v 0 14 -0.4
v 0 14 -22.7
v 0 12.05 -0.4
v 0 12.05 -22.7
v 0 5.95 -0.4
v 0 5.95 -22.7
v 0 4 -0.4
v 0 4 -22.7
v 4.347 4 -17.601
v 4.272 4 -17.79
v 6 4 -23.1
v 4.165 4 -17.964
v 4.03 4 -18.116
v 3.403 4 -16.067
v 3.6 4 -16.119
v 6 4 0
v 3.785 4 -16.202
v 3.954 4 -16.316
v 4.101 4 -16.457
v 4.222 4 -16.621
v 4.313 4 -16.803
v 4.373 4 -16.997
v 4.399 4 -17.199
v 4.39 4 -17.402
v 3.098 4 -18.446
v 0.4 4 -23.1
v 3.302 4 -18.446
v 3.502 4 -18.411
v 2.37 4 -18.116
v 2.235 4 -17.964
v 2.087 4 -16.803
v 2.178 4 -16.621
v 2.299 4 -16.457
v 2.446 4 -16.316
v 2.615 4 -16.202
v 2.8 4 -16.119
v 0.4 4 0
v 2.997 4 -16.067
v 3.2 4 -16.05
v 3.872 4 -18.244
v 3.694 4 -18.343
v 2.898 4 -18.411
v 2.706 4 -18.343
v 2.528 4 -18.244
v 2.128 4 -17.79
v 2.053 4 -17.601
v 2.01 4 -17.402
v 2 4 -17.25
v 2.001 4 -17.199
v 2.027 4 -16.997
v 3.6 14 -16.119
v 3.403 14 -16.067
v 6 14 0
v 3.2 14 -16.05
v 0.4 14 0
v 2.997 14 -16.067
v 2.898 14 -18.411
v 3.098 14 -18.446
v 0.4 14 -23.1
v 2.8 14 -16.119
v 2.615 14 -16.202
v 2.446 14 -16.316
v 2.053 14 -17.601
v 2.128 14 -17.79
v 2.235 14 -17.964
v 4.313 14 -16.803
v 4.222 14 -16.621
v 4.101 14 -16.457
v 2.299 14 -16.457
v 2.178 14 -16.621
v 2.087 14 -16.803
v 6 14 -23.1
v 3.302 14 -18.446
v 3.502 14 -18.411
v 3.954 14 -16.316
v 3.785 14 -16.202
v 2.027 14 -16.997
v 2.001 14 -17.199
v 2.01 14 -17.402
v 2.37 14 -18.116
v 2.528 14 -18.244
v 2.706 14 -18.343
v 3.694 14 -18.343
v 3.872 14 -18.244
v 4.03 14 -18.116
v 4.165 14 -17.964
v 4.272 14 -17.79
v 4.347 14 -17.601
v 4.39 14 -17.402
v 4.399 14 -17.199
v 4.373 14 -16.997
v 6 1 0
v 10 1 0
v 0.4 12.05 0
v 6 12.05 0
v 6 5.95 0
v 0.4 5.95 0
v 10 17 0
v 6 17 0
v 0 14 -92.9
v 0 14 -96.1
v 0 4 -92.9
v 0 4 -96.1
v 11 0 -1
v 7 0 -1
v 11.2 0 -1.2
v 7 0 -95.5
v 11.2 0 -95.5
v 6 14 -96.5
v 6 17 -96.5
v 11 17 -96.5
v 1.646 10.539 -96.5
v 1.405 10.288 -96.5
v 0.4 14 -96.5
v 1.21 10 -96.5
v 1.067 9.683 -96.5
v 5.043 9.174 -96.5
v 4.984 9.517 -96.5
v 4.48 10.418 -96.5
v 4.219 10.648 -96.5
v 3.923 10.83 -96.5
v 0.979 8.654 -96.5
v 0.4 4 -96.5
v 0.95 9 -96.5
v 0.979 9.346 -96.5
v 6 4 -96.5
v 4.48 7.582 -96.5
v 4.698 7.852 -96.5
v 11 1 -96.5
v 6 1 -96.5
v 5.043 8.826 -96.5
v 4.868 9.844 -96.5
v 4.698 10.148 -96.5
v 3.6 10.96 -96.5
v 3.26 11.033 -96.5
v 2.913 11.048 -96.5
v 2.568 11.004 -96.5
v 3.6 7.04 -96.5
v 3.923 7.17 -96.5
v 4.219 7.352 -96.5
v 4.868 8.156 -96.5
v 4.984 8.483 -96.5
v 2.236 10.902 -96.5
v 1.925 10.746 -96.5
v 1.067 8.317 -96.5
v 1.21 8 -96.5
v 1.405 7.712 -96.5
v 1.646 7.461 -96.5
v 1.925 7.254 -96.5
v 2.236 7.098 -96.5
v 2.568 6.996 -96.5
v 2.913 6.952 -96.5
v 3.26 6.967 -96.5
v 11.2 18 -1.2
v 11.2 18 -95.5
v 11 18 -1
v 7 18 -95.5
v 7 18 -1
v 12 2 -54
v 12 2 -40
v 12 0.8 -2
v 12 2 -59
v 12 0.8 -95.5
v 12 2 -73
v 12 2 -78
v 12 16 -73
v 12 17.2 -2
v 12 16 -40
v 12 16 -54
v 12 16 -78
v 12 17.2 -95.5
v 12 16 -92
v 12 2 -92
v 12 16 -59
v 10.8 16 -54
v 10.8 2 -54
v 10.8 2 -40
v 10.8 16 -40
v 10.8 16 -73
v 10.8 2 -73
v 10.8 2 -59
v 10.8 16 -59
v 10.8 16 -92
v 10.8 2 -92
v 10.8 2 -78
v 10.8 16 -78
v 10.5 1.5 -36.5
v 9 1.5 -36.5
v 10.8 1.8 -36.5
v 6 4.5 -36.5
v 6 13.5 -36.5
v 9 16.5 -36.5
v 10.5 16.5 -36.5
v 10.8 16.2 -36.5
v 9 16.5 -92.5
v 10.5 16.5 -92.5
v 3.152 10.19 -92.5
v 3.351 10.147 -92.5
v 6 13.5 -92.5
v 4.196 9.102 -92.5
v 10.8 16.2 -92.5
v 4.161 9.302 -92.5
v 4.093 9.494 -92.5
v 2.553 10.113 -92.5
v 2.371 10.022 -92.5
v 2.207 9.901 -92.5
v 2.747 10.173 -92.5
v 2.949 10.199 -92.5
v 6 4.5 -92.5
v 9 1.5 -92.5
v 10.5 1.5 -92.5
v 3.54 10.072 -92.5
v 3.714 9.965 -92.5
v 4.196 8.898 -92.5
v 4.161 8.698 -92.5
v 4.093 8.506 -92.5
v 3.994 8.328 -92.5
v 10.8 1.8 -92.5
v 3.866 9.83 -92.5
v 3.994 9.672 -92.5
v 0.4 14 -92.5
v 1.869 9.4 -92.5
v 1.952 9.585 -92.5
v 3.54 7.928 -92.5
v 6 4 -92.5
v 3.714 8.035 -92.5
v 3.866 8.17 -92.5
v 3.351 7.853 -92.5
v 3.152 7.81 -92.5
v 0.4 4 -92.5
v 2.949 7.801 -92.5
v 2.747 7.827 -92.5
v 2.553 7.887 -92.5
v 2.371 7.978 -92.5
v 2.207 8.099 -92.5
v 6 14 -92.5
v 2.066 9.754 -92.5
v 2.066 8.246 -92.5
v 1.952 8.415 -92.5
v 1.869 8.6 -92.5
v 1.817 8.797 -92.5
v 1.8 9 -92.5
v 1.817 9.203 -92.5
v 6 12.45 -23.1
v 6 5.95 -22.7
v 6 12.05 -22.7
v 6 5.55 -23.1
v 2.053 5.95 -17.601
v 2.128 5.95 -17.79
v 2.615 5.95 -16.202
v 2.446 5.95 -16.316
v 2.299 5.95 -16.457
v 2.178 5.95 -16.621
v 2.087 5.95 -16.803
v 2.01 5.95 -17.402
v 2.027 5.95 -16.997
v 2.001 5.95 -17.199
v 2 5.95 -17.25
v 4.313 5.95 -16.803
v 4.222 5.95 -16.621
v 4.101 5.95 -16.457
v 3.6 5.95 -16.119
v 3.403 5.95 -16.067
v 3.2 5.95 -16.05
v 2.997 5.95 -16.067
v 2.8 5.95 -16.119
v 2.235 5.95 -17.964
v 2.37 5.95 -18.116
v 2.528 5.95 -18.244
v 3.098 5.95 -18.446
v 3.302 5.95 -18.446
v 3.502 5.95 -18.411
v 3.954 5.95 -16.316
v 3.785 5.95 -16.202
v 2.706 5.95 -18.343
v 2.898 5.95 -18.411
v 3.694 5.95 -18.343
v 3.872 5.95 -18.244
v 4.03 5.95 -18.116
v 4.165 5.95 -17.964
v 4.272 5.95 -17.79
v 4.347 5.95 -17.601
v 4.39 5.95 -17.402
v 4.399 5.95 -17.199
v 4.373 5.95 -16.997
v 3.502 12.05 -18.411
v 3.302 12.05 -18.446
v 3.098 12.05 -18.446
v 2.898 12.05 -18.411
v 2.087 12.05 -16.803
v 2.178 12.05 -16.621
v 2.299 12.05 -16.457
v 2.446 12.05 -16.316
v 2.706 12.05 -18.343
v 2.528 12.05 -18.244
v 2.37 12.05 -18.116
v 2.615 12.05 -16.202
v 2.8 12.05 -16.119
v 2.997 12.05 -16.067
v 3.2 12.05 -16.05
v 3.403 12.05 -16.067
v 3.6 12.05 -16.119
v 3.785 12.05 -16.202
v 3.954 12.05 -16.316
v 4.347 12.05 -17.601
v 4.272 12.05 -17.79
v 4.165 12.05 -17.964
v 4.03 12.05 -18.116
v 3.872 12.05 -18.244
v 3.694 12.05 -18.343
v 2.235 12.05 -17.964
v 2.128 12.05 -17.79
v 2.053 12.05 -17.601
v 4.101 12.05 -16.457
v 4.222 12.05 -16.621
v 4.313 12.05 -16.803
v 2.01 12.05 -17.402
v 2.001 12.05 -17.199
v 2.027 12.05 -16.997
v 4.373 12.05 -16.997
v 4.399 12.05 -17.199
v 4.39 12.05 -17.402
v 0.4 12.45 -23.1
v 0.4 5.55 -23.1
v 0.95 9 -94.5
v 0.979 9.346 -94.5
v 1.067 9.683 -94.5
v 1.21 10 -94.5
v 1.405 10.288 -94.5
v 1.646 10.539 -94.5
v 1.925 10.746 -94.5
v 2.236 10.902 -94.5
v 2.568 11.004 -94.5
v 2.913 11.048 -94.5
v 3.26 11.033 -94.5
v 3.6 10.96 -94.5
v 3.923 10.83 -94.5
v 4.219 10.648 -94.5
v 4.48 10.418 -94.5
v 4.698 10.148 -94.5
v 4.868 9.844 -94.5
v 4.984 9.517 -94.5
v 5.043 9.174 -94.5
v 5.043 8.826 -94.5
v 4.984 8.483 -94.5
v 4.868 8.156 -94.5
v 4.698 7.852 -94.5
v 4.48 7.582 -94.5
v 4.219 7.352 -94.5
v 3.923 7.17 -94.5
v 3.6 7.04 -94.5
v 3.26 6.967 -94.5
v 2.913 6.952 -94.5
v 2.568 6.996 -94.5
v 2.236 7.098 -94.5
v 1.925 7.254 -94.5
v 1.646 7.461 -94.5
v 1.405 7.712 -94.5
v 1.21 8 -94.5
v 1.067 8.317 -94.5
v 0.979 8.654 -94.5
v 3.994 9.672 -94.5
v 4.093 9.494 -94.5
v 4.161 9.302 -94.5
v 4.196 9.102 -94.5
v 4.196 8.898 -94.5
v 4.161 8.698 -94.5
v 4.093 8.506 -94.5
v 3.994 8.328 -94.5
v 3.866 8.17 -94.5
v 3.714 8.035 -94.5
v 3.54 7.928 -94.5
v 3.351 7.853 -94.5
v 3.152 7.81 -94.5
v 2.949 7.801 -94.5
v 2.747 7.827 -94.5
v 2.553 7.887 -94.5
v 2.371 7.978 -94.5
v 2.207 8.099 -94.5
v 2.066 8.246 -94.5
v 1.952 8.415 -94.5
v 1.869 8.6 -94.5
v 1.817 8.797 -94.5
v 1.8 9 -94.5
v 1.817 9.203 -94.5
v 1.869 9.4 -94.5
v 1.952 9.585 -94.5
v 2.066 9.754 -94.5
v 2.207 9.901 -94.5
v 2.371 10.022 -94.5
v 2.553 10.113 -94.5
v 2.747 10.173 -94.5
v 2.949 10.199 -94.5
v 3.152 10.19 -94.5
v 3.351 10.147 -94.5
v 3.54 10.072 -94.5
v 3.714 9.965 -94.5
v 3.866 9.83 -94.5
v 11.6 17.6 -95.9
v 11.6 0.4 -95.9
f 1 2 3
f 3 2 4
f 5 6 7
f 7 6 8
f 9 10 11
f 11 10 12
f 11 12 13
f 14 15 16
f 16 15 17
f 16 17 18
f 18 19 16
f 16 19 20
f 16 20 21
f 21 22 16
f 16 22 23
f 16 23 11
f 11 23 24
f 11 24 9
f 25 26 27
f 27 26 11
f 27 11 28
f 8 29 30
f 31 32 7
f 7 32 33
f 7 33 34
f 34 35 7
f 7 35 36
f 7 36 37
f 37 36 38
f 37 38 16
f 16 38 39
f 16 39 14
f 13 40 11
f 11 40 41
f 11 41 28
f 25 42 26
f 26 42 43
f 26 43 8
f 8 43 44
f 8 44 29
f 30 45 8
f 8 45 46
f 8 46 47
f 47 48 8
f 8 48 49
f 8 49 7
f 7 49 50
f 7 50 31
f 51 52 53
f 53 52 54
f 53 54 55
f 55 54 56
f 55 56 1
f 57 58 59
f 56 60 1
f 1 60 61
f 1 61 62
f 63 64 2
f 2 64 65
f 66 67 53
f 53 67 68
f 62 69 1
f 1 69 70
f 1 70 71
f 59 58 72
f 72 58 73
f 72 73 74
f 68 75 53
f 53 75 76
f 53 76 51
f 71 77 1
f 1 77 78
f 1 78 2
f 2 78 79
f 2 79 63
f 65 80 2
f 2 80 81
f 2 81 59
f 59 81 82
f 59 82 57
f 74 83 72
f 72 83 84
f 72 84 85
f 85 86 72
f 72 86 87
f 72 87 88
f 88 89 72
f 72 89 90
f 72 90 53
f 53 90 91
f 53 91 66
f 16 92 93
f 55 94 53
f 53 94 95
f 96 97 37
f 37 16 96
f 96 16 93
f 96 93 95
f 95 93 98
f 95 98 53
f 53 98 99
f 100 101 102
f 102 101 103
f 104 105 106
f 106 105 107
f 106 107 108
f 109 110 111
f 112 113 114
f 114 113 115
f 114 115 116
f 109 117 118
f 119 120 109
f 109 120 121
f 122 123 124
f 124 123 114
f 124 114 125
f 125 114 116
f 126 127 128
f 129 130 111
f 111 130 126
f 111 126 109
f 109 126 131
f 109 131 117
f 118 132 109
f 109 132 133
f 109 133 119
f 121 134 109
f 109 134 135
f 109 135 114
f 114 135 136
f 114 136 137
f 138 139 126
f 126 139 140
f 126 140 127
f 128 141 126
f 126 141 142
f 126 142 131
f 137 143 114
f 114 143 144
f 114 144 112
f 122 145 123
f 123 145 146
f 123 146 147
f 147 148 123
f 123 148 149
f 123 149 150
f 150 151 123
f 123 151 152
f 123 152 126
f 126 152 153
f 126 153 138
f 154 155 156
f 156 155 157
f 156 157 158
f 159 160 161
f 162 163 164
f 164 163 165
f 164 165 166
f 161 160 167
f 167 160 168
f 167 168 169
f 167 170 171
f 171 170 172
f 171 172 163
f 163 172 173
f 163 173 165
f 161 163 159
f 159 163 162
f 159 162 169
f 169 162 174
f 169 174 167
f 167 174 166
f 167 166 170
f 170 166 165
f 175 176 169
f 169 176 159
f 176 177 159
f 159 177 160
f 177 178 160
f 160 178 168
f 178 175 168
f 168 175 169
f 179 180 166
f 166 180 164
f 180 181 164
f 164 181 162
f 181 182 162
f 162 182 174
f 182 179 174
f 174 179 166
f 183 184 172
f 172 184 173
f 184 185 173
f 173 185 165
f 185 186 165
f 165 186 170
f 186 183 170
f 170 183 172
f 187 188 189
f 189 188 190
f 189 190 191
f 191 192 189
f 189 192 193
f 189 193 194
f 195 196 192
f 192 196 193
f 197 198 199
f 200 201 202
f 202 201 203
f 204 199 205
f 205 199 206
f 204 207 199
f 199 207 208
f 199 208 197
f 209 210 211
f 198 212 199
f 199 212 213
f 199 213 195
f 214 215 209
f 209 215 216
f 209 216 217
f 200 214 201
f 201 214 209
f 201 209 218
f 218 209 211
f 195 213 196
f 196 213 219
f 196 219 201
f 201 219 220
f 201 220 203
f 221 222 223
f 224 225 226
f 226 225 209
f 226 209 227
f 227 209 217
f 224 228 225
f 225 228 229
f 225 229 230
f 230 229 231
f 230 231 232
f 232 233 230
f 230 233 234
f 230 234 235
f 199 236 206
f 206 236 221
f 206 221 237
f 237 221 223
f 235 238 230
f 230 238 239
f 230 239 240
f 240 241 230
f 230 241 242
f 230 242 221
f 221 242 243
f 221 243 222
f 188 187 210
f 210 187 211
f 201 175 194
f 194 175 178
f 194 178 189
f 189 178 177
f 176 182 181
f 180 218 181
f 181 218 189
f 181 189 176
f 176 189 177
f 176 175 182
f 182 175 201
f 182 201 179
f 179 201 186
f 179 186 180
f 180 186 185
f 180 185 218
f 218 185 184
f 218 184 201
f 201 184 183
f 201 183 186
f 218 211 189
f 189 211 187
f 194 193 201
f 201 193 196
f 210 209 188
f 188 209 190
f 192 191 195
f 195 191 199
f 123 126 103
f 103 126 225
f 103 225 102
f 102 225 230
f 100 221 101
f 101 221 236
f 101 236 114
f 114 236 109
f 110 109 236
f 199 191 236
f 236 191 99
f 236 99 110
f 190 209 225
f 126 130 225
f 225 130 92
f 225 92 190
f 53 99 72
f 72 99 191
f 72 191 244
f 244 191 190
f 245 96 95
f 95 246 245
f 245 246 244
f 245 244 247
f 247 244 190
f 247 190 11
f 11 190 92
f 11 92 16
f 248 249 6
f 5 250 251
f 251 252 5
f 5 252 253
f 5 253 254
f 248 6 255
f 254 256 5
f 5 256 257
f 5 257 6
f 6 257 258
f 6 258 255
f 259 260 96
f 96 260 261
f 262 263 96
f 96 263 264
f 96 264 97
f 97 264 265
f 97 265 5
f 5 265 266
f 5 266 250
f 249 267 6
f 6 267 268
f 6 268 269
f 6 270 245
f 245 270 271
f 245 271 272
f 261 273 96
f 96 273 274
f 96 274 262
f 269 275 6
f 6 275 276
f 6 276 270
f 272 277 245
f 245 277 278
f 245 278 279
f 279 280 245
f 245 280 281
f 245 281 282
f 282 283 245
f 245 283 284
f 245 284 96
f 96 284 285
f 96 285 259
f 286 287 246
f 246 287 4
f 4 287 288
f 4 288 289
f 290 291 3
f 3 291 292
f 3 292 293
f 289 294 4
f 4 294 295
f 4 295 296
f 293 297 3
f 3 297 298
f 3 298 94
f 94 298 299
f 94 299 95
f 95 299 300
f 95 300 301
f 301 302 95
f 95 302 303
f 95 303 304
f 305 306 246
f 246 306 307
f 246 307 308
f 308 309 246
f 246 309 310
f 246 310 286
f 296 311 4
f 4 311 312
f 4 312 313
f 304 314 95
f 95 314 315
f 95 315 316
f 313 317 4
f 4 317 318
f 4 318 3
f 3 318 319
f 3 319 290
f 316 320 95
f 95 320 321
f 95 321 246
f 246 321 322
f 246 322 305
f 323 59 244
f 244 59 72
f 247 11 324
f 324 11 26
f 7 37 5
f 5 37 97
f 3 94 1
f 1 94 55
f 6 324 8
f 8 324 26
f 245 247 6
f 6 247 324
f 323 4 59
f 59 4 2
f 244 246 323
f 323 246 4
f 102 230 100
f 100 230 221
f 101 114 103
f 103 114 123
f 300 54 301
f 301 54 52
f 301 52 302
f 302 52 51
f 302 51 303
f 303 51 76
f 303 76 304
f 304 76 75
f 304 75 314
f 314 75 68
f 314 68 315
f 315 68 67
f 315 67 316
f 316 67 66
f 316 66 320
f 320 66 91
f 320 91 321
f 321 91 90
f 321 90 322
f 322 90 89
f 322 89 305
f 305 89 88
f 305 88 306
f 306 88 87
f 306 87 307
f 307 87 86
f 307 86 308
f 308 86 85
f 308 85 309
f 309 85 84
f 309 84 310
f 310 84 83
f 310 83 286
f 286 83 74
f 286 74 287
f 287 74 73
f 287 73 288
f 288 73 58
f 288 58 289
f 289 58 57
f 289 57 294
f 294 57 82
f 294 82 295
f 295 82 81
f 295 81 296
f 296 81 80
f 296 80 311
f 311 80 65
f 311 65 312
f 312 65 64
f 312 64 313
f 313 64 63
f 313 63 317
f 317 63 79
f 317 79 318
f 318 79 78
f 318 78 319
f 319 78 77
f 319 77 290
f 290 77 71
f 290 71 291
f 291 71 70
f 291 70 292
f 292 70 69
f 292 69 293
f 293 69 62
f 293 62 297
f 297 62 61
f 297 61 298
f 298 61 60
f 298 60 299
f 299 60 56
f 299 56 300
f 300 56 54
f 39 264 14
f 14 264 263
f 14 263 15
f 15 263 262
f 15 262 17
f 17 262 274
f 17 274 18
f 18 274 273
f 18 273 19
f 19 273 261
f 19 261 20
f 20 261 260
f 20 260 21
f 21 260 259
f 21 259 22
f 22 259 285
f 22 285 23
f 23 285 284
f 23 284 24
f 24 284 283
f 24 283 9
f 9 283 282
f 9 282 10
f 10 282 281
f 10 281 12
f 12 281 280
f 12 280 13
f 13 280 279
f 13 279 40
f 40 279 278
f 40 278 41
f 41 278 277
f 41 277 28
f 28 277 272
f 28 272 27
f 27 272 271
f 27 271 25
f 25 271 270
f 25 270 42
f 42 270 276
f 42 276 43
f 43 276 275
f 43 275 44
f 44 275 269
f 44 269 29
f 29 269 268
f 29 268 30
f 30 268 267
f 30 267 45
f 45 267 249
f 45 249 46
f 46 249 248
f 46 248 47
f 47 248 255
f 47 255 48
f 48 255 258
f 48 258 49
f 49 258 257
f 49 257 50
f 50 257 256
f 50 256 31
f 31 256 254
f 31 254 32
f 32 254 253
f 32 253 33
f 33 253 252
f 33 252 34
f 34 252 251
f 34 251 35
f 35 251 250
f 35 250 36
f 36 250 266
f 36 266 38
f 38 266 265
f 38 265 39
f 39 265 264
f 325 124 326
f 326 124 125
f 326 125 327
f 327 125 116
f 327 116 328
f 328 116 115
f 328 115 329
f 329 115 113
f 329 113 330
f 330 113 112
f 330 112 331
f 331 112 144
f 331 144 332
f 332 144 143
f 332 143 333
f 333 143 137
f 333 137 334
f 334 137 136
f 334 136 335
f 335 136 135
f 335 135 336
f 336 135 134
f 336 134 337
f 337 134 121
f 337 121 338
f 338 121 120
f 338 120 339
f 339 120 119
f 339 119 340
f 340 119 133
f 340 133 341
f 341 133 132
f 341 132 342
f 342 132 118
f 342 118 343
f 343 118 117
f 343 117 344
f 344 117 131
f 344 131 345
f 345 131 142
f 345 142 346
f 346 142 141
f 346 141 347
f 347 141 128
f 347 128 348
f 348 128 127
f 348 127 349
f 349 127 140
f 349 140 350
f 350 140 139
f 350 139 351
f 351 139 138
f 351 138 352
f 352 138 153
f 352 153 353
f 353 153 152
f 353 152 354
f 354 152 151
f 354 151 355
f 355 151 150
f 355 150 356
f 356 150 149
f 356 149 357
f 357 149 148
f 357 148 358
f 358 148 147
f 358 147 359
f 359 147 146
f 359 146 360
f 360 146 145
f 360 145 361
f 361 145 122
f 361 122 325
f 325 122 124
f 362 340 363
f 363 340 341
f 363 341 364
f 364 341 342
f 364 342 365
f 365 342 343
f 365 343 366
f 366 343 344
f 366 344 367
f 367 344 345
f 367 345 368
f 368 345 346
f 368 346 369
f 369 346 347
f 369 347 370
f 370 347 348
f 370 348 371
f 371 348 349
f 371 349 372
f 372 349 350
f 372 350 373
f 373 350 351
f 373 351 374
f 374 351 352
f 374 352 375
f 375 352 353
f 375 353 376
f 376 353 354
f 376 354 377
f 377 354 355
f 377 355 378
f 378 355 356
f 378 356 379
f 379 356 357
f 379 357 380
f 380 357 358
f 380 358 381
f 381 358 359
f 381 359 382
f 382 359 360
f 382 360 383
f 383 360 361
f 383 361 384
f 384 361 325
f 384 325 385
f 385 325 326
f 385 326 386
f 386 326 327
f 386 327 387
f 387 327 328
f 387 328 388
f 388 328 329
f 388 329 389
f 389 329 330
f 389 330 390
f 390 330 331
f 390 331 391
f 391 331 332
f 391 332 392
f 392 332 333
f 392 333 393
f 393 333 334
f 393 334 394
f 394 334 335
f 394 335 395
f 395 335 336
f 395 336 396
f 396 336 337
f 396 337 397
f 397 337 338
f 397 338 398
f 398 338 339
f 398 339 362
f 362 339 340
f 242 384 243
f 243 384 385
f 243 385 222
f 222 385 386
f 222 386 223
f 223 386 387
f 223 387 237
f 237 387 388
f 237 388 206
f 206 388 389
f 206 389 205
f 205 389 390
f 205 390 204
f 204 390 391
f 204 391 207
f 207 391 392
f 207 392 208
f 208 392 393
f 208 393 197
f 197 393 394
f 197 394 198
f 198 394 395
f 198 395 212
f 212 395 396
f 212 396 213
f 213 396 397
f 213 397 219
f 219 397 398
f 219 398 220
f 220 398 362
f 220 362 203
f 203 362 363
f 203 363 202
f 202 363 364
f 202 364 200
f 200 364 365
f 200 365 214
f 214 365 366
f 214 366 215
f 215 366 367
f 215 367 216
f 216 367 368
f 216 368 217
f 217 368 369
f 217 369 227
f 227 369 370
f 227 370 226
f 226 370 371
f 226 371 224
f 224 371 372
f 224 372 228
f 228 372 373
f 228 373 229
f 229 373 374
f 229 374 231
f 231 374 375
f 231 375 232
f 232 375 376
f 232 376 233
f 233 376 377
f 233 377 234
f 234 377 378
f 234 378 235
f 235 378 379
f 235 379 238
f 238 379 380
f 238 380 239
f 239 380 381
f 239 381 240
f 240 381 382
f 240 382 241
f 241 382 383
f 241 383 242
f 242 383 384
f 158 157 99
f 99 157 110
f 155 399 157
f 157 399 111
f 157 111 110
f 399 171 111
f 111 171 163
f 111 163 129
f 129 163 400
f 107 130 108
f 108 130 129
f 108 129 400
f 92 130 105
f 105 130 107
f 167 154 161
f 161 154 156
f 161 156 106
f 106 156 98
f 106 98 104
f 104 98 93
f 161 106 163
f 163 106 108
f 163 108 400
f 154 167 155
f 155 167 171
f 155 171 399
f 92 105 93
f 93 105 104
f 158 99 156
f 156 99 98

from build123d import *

# Parameters (mm, degrees)
SKETCH_2_W          = 96.5
SKETCH_2_H          = 18
EXTRUDE_1_DEPTH     = 12
SKETCH_3_W          = 14
SKETCH_3_H          = 14
CUT_EXTRUDE_1_DEPTH = 1.2
SKETCH_4_W          = 56
SKETCH_4_H          = 15
CUT_EXTRUDE_2_DEPTH = 4.8
CHAMFER_1_SIZE      = 0.3
CHAMFER_2_SIZE      = 3
SKETCH_6_W          = 6
SKETCH_6_H          = 4
CUT_EXTRUDE_3_DEPTH = 99.895146494
CUT_EXTRUDE_START   = -4
SKETCH_6_4_W        = 6
SKETCH_6_4_H        = 6.1
CUT_EXTRUDE_5_DEPTH = 95.895146494
SKETCH_7_W          = 69.4
SKETCH_7_H          = 10
CUT_EXTRUDE_4_DEPTH = 6
CHAMFER_3_SIZE      = 0.4
SKETCH_8_R          = 1.2
CUT_EXTRUDE_6_DEPTH = 99.245865053
SKETCH_9_R          = 2.05
CUT_EXTRUDE_7_DEPTH = 2
SKETCH_9_3_R        = 1.2
CUT_EXTRUDE_8_DEPTH = 99.895146494
CHAMFER_4_SIZE      = 1
CHAMFER_5_SIZE      = 2
CHAMFER_6_SIZE      = 0.8
CHAMFER_7_SIZE      = 1


with BuildPart() as part:
    # 草图2 → 凸台-拉伸1 (new body)
    with BuildSketch(Plane(origin=(0, 0, 0), x_dir=(0, 0, -1), z_dir=(1, 0, 0))):
        with Locations((48.25, 9)):
            Rectangle(SKETCH_2_W, SKETCH_2_H)
    extrude(amount=EXTRUDE_1_DEPTH)

    # 草图3 → 切除-拉伸1 (cut)
    with BuildSketch(Plane(origin=(12, 0, 0), x_dir=(0, 0, -1), z_dir=(1, 0, 0))):
        with Locations((85, 9)):
            Rectangle(SKETCH_3_W, SKETCH_3_H)
        with Locations((66, 9)):
            Rectangle(SKETCH_3_W, SKETCH_3_H)
        with Locations((47, 9)):
            Rectangle(SKETCH_3_W, SKETCH_3_H)
    extrude(amount=-CUT_EXTRUDE_1_DEPTH, mode=Mode.SUBTRACT)

    # 草图4 → 切除-拉伸2 (cut)
    with BuildSketch(Plane(origin=(10.8, 0, 0), x_dir=(0, 0, -1), z_dir=(1, 0, 0))):
        with Locations((64.5, 9)):
            Rectangle(SKETCH_4_W, SKETCH_4_H)
    extrude(amount=-CUT_EXTRUDE_2_DEPTH, mode=Mode.SUBTRACT)

    # 倒角1
    chamfer_1_edges = [part.edges().sort_by_distance(p)[0] for p in [
        (10.8, 1.5, -64.5),
        (10.8, 16.5, -64.5),
    ]]
    chamfer(chamfer_1_edges, length=CHAMFER_1_SIZE)

    # 倒角2
    chamfer_2_edges = [part.edges().sort_by_distance(p)[0] for p in [
        (6, 16.5, -64.5),
        (6, 1.5, -64.5),
    ]]
    chamfer(chamfer_2_edges, length=CHAMFER_2_SIZE)

    # 草图6 → 切除-拉伸3 (cut, through all)
    with BuildSketch(Plane(origin=(0, 0, -96.5), x_dir=(-1, 0, 0), z_dir=(0, 0, -1))):
        with Locations((-3, 16)):
            Rectangle(SKETCH_6_W, SKETCH_6_H)
        with Locations((-3, 2)):
            Rectangle(SKETCH_6_W, SKETCH_6_H)
    extrude(amount=-CUT_EXTRUDE_3_DEPTH, mode=Mode.SUBTRACT)

    # 草图6<4> → 切除-拉伸5 (cut, through all)
    with BuildSketch(Plane(origin=(0, 0, -96.5), x_dir=(-1, 0, 0), z_dir=(0, 0, -1)).offset(CUT_EXTRUDE_START)):
        with Locations((-3, 9)):
            Rectangle(SKETCH_6_4_W, SKETCH_6_4_H)
    extrude(amount=-CUT_EXTRUDE_5_DEPTH, mode=Mode.SUBTRACT)

    # 草图7 → 切除-拉伸4 (cut)
    with BuildSketch(Plane.ZY):
        with Locations((-57.8, 9)):
            Rectangle(SKETCH_7_W, SKETCH_7_H)
    extrude(amount=-CUT_EXTRUDE_4_DEPTH, mode=Mode.SUBTRACT)

    # 倒角3
    chamfer_3_edges = [part.edges().sort_by_distance(p)[0] for p in [
        (0, 4.975, 0),
        (0, 9, -92.5),
        (3, 12.05, -23.1),
        (0, 13.025, -23.1),
        (3, 5.95, -23.1),
        (0, 4.975, -23.1),
        (0, 13.025, 0),
        (0, 9, -96.5),
    ]]
    chamfer(chamfer_3_edges, length=CHAMFER_3_SIZE)

    # 草图8 → 切除-拉伸6 (cut, through all)
    with BuildSketch(Plane(origin=(0, 14, 0), x_dir=(1, 0, 0), z_dir=(0, 1, 0))):
        with Locations(Location((3.2, 17.25, 0), (0, 0, 270))):
            Circle(SKETCH_8_R)
    extrude(amount=-CUT_EXTRUDE_6_DEPTH, mode=Mode.SUBTRACT)

    # 草图9 → 切除-拉伸7 (cut)
    with BuildSketch(Plane(origin=(0, 0, -96.5), x_dir=(-1, 0, 0), z_dir=(0, 0, -1))):
        with Locations((-3, 9)):
            Circle(SKETCH_9_R)
    extrude(amount=-CUT_EXTRUDE_7_DEPTH, mode=Mode.SUBTRACT)

    # 草图9<3> → 切除-拉伸8 (cut, through all)
    with BuildSketch(Plane(origin=(0, 0, -96.5), x_dir=(-1, 0, 0), z_dir=(0, 0, -1))):
        with Locations((-3, 9)):
            Circle(SKETCH_9_3_R)
    extrude(amount=-CUT_EXTRUDE_8_DEPTH, mode=Mode.SUBTRACT)

    # 倒角4
    chamfer_4_edges = [part.edges().sort_by_distance(p)[0] for p in [
        (6, 18, -48.25),
        (6, 0, -48.25),
        (12, 9, -96.5),
        (9, 18, -96.5),
        (9, 0, -96.5),
    ]]
    chamfer(chamfer_4_edges, length=CHAMFER_4_SIZE)

    # 倒角5
    chamfer_5_edges = [part.edges().sort_by_distance(p)[0] for p in [
        (12, 9, 0),
    ]]
    chamfer(chamfer_5_edges, length=CHAMFER_5_SIZE)

    # 倒角6
    chamfer_6_edges = [part.edges().sort_by_distance(p)[0] for p in [
        (12, 18, -48.75),
        (12, 0, -48.75),
    ]]
    chamfer(chamfer_6_edges, length=CHAMFER_6_SIZE)

    # 倒角7
    chamfer_7_edges = [part.edges().sort_by_distance(p)[0] for p in [
        (8.5, 0, 0),
        (8.5, 18, 0),
    ]]
    chamfer(chamfer_7_edges, length=CHAMFER_7_SIZE)


solid = part.part
